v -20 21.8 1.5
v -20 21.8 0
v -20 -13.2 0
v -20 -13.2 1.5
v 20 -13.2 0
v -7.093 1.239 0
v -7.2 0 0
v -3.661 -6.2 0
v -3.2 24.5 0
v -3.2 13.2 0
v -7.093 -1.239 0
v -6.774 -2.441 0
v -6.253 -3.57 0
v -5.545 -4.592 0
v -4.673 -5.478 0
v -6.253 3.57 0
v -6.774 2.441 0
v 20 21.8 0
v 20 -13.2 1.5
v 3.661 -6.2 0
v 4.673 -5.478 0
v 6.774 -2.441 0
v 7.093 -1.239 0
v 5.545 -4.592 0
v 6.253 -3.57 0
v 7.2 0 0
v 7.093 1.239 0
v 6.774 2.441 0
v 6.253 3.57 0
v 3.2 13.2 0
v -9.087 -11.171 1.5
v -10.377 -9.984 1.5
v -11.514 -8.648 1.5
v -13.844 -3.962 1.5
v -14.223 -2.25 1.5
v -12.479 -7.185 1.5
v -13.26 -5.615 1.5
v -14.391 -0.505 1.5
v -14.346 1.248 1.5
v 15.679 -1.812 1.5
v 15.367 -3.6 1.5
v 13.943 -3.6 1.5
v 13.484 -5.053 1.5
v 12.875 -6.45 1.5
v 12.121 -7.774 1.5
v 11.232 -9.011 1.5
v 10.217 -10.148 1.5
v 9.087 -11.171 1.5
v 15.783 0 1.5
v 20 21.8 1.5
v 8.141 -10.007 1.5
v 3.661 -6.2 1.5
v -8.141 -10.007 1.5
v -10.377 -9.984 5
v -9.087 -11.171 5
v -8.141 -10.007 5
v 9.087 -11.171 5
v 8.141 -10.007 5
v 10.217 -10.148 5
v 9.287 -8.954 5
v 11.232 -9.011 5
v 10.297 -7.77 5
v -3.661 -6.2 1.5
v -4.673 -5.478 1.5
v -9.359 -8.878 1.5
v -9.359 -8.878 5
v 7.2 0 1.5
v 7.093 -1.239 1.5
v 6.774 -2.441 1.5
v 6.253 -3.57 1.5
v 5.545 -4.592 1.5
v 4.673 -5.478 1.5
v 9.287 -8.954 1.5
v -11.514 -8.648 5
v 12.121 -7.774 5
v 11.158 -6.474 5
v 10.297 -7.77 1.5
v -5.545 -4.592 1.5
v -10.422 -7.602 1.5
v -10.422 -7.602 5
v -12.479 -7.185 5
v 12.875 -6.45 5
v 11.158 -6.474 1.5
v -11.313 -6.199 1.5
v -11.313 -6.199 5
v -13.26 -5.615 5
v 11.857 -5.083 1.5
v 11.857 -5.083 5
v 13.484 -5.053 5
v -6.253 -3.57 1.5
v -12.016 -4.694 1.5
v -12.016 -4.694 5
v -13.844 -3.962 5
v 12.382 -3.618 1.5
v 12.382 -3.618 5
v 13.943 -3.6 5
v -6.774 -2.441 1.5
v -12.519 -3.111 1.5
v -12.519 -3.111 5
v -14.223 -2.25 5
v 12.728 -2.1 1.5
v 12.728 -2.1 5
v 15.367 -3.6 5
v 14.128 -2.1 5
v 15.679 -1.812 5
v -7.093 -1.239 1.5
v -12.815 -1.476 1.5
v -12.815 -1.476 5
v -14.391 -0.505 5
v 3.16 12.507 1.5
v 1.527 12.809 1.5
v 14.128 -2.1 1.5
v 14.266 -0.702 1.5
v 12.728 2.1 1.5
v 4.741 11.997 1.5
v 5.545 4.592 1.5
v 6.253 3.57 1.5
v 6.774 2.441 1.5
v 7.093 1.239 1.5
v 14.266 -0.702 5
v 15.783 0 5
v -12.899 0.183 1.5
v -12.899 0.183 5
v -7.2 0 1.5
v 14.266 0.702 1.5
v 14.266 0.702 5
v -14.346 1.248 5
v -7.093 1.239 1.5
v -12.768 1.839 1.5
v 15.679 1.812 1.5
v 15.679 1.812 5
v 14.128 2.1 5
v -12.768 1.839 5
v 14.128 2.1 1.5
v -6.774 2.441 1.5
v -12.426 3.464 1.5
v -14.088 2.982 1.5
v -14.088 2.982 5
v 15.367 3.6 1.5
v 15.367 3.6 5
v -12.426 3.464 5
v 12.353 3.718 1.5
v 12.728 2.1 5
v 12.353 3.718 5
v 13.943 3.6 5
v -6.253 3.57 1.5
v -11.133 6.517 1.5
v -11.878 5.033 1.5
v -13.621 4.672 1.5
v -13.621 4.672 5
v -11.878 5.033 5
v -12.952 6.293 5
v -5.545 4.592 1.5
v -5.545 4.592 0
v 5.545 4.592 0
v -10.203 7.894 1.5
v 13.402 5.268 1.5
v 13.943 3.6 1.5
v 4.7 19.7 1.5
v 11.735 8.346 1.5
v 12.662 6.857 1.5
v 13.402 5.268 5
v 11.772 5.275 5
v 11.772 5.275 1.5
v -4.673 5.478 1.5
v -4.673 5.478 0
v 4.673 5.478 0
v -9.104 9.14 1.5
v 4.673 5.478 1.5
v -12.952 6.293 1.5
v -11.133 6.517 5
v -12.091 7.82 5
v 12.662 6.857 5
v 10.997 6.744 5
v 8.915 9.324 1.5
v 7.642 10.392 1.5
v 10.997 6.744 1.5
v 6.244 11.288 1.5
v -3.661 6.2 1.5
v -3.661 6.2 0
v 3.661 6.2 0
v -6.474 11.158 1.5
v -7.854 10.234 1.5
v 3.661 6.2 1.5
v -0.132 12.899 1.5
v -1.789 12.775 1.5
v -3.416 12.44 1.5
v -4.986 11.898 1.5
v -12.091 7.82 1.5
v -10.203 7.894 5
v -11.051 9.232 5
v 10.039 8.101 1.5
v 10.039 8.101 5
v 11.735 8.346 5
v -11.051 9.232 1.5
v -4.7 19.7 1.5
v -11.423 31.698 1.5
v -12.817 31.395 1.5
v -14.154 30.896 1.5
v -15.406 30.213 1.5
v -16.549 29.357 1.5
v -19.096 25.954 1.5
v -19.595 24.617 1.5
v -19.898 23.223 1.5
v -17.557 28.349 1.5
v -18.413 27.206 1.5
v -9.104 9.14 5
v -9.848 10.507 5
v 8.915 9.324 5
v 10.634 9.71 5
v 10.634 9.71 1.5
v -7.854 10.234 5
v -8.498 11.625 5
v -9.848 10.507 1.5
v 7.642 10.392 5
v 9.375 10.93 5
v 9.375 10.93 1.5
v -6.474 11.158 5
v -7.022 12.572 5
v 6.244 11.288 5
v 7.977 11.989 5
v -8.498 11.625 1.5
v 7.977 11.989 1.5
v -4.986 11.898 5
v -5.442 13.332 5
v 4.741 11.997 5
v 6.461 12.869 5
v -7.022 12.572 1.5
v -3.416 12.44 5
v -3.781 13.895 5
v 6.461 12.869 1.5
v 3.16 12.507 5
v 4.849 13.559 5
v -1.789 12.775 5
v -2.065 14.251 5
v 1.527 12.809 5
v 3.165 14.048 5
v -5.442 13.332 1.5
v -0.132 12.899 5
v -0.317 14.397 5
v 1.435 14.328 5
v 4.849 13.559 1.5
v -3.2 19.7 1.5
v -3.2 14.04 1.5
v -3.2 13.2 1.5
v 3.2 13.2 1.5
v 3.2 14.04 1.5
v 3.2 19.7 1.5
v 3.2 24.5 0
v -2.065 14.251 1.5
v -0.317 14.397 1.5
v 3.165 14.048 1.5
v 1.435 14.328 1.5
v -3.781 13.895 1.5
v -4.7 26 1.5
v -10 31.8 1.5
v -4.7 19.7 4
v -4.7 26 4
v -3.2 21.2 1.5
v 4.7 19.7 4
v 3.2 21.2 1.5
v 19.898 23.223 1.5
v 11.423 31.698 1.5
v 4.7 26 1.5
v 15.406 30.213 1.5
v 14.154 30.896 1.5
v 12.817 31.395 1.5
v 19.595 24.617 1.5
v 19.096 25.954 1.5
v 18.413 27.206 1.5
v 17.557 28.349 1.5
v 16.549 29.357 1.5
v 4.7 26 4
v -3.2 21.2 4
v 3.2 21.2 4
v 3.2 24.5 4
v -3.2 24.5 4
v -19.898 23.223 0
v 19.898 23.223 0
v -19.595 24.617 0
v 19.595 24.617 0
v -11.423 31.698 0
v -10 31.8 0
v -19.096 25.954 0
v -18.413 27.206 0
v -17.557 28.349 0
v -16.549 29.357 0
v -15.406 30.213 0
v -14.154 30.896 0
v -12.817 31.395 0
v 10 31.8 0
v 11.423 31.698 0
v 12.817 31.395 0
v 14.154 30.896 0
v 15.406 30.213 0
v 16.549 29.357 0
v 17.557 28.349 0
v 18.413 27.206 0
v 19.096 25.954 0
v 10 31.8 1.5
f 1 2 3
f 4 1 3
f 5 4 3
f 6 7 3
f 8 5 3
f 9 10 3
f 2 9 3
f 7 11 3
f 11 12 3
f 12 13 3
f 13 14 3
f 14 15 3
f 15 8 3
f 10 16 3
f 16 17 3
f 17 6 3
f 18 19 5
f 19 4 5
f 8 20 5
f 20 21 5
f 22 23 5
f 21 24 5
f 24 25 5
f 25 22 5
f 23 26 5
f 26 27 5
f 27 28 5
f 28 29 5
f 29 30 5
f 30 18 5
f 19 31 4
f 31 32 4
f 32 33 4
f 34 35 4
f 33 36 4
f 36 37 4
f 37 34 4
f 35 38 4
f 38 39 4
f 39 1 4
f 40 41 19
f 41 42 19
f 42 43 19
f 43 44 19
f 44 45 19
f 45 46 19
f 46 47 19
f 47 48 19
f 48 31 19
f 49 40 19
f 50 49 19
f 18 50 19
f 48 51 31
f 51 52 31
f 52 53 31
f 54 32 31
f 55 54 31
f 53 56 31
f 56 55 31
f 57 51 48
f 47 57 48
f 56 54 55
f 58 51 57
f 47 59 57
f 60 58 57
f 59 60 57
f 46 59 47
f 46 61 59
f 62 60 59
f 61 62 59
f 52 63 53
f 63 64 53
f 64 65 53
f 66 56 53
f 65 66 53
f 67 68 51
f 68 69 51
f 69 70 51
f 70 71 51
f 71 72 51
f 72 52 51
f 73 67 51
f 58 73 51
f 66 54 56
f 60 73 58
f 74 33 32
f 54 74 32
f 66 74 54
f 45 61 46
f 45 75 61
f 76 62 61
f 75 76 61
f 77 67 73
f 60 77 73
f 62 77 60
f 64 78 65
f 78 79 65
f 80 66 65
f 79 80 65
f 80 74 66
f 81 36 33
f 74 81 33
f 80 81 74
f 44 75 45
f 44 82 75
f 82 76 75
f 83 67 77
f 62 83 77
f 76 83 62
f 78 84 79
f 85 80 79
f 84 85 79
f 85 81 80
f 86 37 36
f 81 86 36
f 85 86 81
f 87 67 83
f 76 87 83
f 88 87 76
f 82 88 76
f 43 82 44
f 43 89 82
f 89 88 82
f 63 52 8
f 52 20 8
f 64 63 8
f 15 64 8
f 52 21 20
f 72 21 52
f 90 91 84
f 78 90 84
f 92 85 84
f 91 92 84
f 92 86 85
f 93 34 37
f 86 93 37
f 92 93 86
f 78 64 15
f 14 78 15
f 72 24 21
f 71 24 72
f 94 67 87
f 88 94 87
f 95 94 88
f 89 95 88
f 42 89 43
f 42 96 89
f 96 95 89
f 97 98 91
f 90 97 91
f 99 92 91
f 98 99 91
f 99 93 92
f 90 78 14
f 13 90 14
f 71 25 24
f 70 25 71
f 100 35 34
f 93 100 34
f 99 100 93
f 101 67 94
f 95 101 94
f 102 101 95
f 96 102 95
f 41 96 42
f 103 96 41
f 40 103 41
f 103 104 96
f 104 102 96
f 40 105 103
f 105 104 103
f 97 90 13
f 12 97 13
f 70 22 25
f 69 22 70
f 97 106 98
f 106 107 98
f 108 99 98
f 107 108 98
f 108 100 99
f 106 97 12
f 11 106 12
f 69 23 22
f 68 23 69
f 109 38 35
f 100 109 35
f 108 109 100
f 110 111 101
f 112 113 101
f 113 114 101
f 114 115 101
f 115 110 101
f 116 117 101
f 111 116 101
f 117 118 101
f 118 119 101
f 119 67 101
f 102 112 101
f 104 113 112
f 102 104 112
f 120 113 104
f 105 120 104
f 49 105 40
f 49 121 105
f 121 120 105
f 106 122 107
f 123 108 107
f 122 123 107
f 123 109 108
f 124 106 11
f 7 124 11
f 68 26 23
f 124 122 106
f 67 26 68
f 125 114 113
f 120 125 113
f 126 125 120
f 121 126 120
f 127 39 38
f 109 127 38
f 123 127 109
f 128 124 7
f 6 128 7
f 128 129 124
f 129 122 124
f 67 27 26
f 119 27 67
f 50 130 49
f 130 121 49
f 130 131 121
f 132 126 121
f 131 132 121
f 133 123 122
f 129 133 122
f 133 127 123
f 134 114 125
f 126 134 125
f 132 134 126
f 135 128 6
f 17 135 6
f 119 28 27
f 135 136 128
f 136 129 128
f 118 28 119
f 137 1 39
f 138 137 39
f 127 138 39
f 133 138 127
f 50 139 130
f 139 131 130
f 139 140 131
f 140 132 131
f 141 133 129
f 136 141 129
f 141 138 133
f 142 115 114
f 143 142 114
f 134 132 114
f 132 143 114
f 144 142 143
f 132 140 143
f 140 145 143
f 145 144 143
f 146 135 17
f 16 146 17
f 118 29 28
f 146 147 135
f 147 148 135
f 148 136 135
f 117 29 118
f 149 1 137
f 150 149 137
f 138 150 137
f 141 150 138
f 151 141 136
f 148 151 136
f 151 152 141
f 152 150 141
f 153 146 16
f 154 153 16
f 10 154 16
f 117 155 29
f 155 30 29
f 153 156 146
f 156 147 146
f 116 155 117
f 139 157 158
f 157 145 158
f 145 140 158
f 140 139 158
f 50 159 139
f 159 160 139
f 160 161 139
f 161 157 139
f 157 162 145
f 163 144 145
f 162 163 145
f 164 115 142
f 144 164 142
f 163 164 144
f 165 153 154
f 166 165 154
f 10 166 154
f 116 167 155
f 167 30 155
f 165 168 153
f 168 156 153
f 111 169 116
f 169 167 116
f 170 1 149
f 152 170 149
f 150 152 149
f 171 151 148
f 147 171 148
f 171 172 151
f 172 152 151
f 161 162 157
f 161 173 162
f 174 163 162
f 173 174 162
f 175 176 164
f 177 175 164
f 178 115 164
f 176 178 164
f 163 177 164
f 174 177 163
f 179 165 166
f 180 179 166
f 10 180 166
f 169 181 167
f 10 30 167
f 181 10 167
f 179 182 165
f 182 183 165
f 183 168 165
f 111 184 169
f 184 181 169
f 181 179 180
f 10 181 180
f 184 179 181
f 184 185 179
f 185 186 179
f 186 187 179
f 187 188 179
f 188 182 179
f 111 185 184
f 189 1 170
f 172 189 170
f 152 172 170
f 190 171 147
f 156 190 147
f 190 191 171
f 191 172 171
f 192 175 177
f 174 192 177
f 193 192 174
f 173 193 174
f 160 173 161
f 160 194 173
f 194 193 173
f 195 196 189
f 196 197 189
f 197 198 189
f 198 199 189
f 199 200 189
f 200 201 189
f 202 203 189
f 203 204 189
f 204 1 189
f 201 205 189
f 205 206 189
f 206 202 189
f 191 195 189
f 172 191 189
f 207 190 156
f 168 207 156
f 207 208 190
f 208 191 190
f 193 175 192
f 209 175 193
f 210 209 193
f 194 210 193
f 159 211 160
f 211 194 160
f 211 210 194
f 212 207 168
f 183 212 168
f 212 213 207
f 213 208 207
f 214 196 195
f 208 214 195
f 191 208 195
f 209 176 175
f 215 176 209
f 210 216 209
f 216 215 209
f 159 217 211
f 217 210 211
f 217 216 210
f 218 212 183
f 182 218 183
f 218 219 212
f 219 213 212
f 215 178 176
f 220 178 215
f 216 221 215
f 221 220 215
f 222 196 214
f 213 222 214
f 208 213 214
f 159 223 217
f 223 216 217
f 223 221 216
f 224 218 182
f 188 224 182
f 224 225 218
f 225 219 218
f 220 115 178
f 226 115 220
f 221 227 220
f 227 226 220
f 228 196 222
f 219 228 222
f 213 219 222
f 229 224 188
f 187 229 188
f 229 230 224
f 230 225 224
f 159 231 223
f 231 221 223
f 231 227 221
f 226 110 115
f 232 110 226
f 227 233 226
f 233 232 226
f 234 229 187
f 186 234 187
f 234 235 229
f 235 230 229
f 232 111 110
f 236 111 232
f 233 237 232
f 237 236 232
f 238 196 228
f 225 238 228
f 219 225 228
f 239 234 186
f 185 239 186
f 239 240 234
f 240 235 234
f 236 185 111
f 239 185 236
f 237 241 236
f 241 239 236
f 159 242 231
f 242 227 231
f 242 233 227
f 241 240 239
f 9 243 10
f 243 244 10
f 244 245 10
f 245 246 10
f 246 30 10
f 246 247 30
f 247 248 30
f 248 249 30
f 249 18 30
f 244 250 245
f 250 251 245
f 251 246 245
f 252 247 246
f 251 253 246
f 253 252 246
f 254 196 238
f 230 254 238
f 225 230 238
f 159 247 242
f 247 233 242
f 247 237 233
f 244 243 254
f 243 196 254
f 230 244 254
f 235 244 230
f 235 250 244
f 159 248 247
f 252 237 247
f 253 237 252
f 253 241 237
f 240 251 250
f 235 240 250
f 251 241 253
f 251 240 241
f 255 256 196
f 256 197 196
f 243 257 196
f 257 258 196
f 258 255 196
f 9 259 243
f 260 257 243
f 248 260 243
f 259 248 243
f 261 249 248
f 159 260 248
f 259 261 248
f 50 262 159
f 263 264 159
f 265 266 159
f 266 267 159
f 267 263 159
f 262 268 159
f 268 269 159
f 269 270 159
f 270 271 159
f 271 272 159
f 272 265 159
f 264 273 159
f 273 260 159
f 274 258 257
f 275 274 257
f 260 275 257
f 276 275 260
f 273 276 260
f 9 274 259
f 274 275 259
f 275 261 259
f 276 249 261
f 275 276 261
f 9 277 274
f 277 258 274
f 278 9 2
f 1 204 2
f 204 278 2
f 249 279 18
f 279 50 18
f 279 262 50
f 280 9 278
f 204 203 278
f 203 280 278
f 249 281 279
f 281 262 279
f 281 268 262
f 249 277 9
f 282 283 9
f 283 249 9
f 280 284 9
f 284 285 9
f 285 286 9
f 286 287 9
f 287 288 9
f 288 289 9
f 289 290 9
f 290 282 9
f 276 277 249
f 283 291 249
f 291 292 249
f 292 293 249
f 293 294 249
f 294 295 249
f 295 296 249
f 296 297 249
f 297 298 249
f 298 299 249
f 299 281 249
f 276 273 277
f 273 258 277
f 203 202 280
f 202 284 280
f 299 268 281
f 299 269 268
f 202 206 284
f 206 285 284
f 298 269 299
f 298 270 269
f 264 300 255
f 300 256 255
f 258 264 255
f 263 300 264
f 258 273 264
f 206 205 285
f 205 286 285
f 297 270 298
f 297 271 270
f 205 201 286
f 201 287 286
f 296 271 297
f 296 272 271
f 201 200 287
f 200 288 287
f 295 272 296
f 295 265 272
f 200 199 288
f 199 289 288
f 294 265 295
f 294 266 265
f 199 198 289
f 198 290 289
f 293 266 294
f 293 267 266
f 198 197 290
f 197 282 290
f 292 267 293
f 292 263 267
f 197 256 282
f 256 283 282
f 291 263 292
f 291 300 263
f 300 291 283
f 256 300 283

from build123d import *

# Parameters (mm, degrees)
CROQUIS1_W                  = 40
CROQUIS1_H                  = 45
CROQUIS1_W_2                = 6.4
CROQUIS1_H_2                = 11.3
SALIENTE_EXTRUIR1_DEPTH     = 1.5
REDONDEO1_R                 = 10
EXTRUIR_L_MINA1_OUTLINE_W   = 9.4
EXTRUIR_L_MINA1_OUTLINE_H   = 6.3
EXTRUIR_L_MINA1_OUTLINE_W_2 = 6.4
EXTRUIR_L_MINA1_OUTLINE_H_2 = 3.3
EXTRUIR_L_MINA1_DEPTH       = 4
EXTRUIR_L_MINA3_DEPTH       = 5
CROQUIS1_10_W               = 6.4
CROQUIS1_10_H               = 8
CORTAR_EXTRUIR5_DEPTH       = 1.5


# Read off the part's stored shape, not the designer's step: Extruir-Lámina1
with BuildPart() as part:
    # Croquis1 → Saliente-Extruir1 (new body)
    with BuildSketch(Plane.XY):
        with Locations((0, 9.3)):
            Rectangle(CROQUIS1_W, CROQUIS1_H)
        with BuildLine():
            Line((3.660601044, -6.2), (-3.660601044, -6.2))
            ThreePointArc((-3.660601044, -6.2), (-7.2, 0), (-3.660601044, 6.2))
            Line((-3.660601044, 6.2), (3.660601044, 6.2))
            ThreePointArc((3.660601044, 6.2), (7.2, 0), (3.660601044, -6.2))
        make_face(mode=Mode.SUBTRACT)
        with Locations((0, 18.85)):
            Rectangle(CROQUIS1_W_2, CROQUIS1_H_2, mode=Mode.SUBTRACT)
    extrude(amount=SALIENTE_EXTRUIR1_DEPTH)

    # Redondeo1
    redondeo1_edges = [part.edges().sort_by_distance(p)[0] for p in [
        (-20, 31.8, 0.75),
        (20, 31.8, 0.75),
    ]]
    fillet(redondeo1_edges, radius=REDONDEO1_R)

    # Extruir-Lámina1 outline → Extruir-Lámina1 (add)
    with BuildSketch(Plane.XY):
        with Locations((0, 22.85)):
            Rectangle(EXTRUIR_L_MINA1_OUTLINE_W, EXTRUIR_L_MINA1_OUTLINE_H)
        with Locations((0, 22.85)):
            Rectangle(EXTRUIR_L_MINA1_OUTLINE_W_2, EXTRUIR_L_MINA1_OUTLINE_H_2, mode=Mode.SUBTRACT)
    extrude(amount=EXTRUIR_L_MINA1_DEPTH)

    # Croquis1<11> → Extruir-Lámina3 (add)
    with BuildSketch(Plane.XY):
        with BuildLine():
            ThreePointArc((-8.140559831, -10.007061788), (-6.473500548, 11.158126664), (12.727922061, 2.1))
            Line((12.727922061, 2.1), (14.127922061, 2.1))
            ThreePointArc((14.127922061, 2.1), (14.283143274, 0), (14.127922061, -2.1))
            Line((14.127922061, -2.1), (12.727922061, -2.1))
            ThreePointArc((12.727922061, -2.1), (11.158126664, -6.473500548), (8.140559831, -10.007061788))
            Line((8.140559831, -10.007061788), (9.087136556, -11.170673624))
            ThreePointArc((9.087136556, -11.170673624), (12.121162438, -7.774150831), (13.942740046, -3.6))
            Line((13.942740046, -3.6), (15.367095093, -3.6))
            ThreePointArc((15.367095093, -3.6), (15.783143274, 0), (15.367095093, 3.6))
            Line((15.367095093, 3.6), (13.942740046, 3.6))
            ThreePointArc((13.942740046, 3.6), (-7.774150831, 12.121162438), (-9.087136556, -11.170673624))
            Line((-9.087136556, -11.170673624), (-8.140559831, -10.007061788))
        make_face()
    extrude(amount=EXTRUIR_L_MINA3_DEPTH)

    # Croquis1<10> → Cortar-Extruir5 (cut)
    with BuildSketch(Plane.XY):
        with Locations((0, 17.2)):
            Rectangle(CROQUIS1_10_W, CROQUIS1_10_H)
    extrude(amount=CORTAR_EXTRUIR5_DEPTH, mode=Mode.SUBTRACT)


solid = part.part
